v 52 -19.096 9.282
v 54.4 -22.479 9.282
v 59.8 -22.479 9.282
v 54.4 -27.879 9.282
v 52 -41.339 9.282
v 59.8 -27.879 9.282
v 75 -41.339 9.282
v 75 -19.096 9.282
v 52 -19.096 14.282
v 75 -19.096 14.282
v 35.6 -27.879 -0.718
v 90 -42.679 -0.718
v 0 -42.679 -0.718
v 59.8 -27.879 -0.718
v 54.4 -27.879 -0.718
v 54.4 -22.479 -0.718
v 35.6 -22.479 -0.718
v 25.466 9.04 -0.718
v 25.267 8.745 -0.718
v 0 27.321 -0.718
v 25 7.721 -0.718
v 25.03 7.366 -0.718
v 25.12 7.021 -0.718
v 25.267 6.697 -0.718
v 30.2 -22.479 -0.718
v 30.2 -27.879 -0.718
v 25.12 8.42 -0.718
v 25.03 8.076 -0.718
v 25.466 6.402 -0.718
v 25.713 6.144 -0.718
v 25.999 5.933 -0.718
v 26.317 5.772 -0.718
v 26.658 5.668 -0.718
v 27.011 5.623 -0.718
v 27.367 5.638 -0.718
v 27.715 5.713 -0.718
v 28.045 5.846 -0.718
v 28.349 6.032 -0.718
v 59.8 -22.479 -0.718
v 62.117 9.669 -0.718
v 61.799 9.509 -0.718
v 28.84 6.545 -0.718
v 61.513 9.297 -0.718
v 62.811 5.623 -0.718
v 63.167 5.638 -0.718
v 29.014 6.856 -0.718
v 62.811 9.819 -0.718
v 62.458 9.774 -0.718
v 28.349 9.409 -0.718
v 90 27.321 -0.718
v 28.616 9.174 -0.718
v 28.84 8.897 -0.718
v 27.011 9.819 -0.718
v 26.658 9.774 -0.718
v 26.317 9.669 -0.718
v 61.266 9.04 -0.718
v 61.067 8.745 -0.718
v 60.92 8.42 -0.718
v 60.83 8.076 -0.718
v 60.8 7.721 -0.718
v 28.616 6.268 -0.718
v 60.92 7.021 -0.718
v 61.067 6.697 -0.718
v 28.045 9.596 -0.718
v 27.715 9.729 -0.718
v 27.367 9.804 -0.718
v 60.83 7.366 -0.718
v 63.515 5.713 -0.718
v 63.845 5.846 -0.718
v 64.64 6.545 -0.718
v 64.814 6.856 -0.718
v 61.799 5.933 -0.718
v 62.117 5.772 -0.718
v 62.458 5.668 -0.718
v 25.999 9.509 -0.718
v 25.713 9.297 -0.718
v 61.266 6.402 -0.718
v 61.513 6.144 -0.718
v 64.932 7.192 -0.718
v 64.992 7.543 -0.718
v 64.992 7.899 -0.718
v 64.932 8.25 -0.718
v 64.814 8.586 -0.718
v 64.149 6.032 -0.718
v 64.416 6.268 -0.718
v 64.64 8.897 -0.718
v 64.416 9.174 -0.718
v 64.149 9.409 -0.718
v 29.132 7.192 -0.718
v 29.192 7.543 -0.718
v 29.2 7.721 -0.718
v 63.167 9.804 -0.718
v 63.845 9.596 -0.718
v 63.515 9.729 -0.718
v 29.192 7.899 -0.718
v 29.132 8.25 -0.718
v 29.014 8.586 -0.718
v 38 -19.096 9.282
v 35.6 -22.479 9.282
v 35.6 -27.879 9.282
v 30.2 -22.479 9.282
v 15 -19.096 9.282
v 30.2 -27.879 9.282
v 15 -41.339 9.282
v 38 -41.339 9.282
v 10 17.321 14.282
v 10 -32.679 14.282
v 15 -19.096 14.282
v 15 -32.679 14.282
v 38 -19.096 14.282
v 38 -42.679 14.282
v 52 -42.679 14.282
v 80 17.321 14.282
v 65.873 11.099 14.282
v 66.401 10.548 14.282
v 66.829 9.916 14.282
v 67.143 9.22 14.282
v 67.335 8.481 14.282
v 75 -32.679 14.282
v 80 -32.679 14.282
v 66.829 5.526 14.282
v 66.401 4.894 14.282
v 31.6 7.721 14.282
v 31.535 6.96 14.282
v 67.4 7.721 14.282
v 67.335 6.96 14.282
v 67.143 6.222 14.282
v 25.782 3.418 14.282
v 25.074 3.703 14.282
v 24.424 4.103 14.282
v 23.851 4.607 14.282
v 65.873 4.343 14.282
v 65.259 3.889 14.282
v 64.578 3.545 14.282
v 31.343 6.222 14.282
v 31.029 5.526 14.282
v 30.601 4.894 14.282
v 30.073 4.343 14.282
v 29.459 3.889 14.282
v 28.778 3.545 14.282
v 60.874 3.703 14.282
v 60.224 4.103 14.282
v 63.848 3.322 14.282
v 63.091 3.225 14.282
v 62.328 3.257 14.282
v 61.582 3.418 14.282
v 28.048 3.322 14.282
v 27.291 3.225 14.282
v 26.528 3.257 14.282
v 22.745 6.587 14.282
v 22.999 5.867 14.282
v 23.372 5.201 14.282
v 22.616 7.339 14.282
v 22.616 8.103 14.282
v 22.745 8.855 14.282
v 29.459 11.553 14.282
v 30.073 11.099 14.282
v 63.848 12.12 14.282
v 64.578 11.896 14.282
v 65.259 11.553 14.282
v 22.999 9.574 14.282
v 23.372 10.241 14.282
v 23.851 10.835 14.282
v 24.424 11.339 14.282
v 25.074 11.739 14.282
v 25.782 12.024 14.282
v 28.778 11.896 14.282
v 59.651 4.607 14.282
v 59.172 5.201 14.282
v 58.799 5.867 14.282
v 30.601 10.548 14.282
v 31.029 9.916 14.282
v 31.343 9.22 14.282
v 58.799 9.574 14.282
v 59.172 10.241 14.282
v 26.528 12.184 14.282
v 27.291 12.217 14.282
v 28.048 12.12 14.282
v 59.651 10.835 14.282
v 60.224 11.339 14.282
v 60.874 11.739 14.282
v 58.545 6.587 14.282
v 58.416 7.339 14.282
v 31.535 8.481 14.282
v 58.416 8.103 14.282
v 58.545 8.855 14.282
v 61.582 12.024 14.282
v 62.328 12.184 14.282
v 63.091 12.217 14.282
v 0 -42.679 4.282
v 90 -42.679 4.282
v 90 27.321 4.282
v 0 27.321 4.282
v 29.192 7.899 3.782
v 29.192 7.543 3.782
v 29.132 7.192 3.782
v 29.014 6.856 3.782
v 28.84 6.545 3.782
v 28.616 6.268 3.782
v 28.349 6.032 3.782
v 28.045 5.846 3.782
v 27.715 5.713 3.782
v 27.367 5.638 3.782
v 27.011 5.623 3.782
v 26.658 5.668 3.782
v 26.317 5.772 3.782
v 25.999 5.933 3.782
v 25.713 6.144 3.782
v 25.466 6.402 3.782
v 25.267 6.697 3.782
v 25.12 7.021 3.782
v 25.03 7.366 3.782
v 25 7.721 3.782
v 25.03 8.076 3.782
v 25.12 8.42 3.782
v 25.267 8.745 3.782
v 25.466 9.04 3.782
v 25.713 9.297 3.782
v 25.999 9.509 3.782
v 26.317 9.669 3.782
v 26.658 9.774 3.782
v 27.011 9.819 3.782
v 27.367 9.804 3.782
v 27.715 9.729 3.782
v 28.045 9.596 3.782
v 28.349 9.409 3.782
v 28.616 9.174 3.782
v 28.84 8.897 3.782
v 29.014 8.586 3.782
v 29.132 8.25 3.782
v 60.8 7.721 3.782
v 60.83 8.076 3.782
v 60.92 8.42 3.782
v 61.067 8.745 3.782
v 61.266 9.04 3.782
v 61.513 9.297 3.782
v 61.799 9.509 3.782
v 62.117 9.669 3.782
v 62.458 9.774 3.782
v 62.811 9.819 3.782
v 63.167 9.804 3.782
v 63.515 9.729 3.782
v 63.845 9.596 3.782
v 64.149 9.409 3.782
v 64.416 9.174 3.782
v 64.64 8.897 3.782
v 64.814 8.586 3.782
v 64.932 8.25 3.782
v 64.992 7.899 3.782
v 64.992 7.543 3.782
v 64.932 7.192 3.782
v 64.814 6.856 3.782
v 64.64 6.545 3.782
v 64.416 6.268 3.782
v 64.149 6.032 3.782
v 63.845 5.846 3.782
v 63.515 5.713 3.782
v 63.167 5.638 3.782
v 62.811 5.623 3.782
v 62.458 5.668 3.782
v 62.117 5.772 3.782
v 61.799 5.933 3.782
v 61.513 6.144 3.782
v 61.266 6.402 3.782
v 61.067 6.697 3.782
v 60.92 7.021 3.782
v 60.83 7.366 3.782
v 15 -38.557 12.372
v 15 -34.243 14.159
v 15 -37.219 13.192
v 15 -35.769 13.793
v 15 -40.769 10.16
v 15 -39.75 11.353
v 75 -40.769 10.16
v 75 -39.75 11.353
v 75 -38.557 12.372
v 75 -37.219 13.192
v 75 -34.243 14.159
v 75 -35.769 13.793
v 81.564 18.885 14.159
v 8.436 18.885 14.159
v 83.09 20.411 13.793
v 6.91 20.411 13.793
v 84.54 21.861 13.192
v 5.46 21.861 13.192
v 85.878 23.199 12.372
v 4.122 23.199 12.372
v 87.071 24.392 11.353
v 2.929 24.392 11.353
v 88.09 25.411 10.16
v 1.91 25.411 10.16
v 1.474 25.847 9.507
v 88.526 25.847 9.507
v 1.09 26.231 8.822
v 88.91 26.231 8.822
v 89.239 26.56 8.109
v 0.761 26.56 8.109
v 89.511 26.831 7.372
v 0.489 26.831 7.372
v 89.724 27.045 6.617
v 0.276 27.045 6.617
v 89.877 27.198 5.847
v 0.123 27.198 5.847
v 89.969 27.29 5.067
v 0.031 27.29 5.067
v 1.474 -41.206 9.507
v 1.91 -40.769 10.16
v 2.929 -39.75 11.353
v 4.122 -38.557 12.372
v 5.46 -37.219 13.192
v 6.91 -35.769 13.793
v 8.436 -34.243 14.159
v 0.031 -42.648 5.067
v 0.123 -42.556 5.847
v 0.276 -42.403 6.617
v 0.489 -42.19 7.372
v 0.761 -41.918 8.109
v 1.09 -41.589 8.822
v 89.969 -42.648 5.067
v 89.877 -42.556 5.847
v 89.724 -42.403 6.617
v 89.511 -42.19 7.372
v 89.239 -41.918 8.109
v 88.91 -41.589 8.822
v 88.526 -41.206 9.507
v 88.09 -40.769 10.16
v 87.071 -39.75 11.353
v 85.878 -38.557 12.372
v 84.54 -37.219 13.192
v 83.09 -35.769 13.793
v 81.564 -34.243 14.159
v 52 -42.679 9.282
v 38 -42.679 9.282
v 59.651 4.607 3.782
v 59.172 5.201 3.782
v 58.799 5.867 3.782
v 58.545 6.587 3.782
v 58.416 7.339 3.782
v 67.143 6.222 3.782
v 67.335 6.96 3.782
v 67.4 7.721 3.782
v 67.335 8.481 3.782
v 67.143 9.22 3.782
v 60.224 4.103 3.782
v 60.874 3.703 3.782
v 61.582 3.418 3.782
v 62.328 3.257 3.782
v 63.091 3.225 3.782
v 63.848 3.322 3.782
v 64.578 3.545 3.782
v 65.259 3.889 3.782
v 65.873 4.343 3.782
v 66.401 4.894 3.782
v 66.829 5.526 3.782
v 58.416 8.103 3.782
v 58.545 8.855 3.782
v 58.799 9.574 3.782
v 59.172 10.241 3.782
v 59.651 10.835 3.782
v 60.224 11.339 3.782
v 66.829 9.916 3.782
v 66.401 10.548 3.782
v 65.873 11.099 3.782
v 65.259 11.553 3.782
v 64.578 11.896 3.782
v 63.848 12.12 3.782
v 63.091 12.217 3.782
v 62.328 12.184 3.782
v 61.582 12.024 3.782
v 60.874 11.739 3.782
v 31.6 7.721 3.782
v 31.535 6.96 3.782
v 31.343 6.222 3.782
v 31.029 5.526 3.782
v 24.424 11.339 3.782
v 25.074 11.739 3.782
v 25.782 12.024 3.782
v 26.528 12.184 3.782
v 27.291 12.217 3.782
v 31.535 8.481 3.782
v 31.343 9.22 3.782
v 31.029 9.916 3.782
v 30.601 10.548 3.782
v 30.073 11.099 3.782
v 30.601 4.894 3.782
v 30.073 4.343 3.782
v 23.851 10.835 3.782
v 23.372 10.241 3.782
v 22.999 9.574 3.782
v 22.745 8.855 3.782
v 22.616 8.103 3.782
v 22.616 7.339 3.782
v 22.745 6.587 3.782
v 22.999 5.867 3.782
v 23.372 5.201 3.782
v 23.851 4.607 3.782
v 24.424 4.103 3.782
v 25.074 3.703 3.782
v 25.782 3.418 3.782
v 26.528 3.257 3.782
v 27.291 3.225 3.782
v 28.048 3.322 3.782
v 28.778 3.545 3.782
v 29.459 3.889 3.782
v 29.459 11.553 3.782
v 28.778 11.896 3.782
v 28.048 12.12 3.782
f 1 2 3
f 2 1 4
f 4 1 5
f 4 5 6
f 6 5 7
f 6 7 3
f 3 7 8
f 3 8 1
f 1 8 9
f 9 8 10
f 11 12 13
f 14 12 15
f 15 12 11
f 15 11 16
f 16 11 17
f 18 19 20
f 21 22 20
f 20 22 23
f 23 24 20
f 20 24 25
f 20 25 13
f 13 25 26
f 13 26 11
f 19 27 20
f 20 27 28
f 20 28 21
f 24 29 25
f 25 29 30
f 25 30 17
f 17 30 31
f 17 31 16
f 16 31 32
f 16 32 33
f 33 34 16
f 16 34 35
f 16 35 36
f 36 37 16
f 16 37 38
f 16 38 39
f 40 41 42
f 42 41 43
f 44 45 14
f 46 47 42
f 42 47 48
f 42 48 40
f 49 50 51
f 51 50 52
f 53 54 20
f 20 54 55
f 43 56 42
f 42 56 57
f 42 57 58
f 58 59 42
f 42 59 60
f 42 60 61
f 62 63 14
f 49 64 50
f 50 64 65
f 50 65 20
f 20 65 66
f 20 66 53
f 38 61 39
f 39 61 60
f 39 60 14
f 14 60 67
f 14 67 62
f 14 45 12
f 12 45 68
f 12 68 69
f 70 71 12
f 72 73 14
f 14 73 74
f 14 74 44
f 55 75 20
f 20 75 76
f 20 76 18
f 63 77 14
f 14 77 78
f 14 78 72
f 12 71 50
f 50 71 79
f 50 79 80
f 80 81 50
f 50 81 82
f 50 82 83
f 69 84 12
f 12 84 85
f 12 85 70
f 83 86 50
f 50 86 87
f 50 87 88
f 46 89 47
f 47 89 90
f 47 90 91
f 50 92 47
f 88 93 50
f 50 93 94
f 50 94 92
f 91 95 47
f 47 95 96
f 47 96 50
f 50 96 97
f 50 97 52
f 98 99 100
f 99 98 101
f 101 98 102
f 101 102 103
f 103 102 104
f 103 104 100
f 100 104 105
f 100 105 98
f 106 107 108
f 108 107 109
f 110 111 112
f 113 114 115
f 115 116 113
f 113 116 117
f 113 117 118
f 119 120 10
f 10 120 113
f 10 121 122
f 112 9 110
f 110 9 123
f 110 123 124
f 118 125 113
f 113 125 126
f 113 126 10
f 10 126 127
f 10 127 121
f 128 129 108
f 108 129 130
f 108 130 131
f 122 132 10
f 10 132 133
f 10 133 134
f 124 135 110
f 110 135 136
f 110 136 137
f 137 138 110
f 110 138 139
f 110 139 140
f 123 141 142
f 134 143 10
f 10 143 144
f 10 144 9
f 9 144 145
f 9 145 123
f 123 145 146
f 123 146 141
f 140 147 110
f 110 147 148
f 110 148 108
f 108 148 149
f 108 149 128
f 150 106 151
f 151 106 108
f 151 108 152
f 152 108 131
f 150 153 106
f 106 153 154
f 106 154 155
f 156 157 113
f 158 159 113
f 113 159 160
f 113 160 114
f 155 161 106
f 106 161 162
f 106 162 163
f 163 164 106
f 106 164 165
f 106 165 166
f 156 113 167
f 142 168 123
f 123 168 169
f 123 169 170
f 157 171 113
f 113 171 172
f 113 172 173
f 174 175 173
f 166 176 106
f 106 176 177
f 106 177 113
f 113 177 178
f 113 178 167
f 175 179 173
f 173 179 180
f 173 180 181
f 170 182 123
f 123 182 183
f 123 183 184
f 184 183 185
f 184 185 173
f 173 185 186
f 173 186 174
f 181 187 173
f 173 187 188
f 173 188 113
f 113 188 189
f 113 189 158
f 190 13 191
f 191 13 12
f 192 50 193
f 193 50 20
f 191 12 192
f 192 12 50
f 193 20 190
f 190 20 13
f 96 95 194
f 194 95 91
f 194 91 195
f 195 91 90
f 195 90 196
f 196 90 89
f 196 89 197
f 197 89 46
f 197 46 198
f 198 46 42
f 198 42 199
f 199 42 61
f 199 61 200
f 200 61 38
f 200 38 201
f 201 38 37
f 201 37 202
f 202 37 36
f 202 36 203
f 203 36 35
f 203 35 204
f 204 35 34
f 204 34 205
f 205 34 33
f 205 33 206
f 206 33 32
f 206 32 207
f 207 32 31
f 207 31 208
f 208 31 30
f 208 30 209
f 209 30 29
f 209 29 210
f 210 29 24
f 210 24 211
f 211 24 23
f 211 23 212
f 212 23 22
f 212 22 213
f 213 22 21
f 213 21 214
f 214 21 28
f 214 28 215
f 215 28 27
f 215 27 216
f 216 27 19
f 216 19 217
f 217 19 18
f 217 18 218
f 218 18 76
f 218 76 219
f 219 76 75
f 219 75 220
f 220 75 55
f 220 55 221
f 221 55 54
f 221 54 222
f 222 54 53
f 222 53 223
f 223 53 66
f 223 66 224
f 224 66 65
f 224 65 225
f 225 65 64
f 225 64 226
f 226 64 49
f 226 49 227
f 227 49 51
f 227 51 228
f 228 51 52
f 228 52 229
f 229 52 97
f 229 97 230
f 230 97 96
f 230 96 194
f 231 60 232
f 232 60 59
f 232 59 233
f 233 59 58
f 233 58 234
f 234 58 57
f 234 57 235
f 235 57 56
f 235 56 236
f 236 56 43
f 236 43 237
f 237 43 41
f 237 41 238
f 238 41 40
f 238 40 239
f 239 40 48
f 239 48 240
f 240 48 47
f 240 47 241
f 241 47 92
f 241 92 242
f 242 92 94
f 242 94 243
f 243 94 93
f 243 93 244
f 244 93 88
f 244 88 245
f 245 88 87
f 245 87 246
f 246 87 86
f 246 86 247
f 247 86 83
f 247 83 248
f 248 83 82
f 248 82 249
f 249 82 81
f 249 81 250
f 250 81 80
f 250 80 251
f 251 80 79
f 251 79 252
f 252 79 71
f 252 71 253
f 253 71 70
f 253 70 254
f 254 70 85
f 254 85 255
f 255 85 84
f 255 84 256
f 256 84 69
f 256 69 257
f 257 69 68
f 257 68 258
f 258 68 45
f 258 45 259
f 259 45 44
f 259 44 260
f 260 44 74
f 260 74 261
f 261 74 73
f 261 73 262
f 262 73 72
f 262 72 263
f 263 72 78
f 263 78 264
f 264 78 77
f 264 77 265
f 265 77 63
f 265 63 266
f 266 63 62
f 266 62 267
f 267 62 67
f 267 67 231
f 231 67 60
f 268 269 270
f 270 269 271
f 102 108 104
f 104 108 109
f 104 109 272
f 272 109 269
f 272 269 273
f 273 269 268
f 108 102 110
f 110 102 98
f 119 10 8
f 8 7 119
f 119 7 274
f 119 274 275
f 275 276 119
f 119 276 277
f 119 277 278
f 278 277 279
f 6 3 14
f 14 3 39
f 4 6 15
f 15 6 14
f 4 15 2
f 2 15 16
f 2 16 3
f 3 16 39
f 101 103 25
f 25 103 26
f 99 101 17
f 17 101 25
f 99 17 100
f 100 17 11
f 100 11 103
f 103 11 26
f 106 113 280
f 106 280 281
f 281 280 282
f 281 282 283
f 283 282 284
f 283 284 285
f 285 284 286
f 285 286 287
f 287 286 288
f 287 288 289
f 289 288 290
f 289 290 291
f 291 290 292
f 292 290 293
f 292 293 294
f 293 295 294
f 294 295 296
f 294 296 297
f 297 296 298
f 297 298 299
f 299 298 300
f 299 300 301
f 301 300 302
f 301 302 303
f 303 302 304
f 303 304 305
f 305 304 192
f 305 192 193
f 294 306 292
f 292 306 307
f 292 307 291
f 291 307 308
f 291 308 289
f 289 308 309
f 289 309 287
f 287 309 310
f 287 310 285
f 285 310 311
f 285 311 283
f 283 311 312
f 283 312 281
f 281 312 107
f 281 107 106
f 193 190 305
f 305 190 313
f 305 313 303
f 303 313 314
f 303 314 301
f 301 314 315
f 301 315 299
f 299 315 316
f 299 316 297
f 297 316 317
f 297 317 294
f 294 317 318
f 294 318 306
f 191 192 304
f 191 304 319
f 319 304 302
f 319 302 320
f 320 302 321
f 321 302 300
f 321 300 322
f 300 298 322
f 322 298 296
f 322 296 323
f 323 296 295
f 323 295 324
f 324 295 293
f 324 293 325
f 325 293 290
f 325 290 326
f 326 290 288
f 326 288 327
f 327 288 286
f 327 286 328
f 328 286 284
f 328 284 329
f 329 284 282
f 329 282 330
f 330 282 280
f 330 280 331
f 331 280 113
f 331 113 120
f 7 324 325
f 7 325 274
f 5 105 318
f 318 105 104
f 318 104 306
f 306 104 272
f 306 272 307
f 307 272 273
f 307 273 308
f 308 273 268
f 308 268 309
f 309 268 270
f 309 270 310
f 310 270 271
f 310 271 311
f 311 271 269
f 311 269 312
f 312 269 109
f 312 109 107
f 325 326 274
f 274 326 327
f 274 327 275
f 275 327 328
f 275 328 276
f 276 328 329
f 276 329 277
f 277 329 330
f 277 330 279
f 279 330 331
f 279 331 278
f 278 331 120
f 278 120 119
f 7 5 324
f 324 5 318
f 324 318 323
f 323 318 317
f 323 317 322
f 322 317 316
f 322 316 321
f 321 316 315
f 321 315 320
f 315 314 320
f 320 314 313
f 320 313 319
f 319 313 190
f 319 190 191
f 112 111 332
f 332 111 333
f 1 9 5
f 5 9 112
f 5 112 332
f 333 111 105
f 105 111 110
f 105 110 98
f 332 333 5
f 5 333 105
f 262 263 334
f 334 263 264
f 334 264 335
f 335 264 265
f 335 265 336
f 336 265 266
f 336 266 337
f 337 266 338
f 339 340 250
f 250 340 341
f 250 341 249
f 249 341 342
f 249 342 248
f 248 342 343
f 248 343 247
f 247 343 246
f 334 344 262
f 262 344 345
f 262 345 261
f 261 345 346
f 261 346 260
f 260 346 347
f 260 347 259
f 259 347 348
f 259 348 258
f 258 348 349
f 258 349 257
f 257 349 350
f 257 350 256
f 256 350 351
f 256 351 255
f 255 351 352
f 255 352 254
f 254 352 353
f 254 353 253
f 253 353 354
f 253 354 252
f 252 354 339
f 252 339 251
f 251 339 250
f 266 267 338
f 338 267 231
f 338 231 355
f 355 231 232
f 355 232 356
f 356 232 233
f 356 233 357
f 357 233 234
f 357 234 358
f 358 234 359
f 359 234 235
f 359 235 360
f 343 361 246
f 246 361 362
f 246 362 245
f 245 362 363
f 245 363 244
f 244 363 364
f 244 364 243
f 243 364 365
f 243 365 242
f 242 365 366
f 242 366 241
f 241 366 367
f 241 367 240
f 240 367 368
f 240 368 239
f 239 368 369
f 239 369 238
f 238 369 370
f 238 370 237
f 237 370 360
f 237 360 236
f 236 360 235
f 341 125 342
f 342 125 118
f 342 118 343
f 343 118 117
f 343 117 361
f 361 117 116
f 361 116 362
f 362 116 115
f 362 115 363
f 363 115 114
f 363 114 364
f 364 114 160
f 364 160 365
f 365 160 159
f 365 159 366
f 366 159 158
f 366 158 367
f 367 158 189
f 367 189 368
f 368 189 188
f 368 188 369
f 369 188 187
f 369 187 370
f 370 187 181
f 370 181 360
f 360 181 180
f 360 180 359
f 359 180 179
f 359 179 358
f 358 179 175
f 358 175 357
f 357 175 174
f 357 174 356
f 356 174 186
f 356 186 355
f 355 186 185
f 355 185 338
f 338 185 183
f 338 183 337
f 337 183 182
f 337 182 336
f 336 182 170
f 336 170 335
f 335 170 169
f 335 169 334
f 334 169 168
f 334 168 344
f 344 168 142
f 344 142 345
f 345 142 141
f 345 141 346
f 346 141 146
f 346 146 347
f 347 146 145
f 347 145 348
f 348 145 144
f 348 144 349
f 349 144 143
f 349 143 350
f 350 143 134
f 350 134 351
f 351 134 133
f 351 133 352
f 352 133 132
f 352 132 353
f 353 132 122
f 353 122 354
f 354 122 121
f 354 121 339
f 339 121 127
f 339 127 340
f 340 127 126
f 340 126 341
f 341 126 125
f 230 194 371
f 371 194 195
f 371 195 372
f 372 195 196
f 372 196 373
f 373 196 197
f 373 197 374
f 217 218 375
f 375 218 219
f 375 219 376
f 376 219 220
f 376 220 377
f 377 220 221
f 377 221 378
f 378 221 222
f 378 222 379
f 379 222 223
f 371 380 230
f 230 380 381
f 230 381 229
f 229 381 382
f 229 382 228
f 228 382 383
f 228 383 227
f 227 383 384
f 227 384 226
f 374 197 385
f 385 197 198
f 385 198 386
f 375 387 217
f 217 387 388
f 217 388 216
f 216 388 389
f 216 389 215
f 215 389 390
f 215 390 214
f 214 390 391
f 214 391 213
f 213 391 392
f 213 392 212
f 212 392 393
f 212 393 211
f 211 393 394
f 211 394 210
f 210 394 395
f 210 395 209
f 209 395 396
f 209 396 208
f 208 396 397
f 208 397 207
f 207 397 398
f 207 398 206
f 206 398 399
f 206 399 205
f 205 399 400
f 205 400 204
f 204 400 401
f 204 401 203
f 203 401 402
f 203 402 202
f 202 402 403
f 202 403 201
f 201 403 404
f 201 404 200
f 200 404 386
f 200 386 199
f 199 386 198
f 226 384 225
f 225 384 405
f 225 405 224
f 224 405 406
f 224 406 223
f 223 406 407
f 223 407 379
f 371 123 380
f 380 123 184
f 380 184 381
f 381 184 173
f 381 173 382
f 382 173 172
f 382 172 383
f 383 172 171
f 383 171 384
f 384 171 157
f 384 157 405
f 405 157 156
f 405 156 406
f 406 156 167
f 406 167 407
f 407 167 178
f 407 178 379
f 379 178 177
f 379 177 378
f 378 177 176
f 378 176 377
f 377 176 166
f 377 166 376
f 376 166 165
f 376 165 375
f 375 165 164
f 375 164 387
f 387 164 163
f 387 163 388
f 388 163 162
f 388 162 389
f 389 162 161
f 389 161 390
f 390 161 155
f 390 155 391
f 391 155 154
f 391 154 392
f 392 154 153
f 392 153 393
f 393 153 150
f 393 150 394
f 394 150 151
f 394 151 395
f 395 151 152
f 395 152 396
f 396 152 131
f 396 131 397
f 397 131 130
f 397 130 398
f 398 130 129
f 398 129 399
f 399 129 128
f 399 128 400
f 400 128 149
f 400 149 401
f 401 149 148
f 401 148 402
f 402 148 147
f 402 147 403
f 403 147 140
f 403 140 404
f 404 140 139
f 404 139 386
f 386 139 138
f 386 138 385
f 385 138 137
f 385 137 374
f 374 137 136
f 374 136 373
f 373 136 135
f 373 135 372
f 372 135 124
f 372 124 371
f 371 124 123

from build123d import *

# Parameters (mm, degrees)
BOSS_EXTRUDE3_DEPTH       = 90
SKETCH3_R                 = 2.1
CUT_EXTRUDE1_DEPTH        = 101.729866263
SKETCH7_W                 = 60
SKETCH7_H                 = 23.583098141
CUT_EXTRUDE3_DEPTH        = 5
SKETCH8_W                 = 5.4
SKETCH8_H                 = 5.4
CUT_EXTRUDE4_DEPTH        = 10.2
FILLET3_R                 = 10
SKETCH9_W                 = 14
SKETCH9_H                 = 23.583098141
BOSS_EXTRUDE4_DEPTH       = 5
ADVANCEDHOLE2_START       = 3.782223439
ADVANCEDHOLE2_OUTLINE_R   = 4.5
ADVANCEDHOLE2_OUTLINE_R_2 = 2.1
ADVANCEDHOLE2_DEPTH       = 10.5


# Read off the part's stored shape, not the designer's step: AdvancedHole2
with BuildPart() as part:
    # Sketch1 → Boss-Extrude3 (new body)
    with BuildSketch(Plane.YZ):
        Polygon((-42.679104458, 14.282223439), (-12.679104458, 14.282223439), (27.320895542, 14.282223439), (27.320895542, -0.717776561), (-42.679104458, -0.717776561), (-42.679104458, 2.342667118), align=None)
    extrude(amount=BOSS_EXTRUDE3_DEPTH)

    # Sketch3 → Cut-Extrude1 (cut, through all)
    with BuildSketch(Plane(origin=(0, 0, -0.717776561), x_dir=(1, 0, 0), z_dir=(0, 0, -1))):
        with Locations(Location((57.1, 25.179104458, 0), (0, 0, 180))):
            Circle(SKETCH3_R)
        with Locations((32.9, 25.179104458)):
            Circle(SKETCH3_R)
        with Locations(Location((62.9, -7.720895542, 0), (0, 0, 180))):
            Circle(SKETCH3_R)
        with Locations((27.1, -7.720895542)):
            Circle(SKETCH3_R)
    extrude(amount=-CUT_EXTRUDE1_DEPTH, mode=Mode.SUBTRACT)

    # Sketch7 → Cut-Extrude3 (cut)
    with BuildSketch(Plane.XY.offset(14.282223439)):
        with Locations((45, -30.887555388)):
            Rectangle(SKETCH7_W, SKETCH7_H)
    extrude(amount=-CUT_EXTRUDE3_DEPTH, mode=Mode.SUBTRACT)

    # Sketch8 → Cut-Extrude4 (cut)
    with BuildSketch(Plane.XY.offset(9.282223439)):
        with Locations((32.9, -25.179104458)):
            Rectangle(SKETCH8_W, SKETCH8_H)
        with Locations((57.1, -25.179104458)):
            Rectangle(SKETCH8_W, SKETCH8_H)
    extrude(amount=-CUT_EXTRUDE4_DEPTH, mode=Mode.SUBTRACT)

    # Fillet3
    # the kernel refuses this fillet: 10 mm, written as the material it takes off along each edge
    with BuildSketch(Plane(origin=(-60, 27.320895542, 14.282223439), x_dir=(0, -1, 0), z_dir=(1, 0, 0))) as fillet3_piece_1:
        with BuildLine():
            CenterArc((FILLET3_R, FILLET3_R), FILLET3_R, 180, 90)
            Line((0, FILLET3_R), (-FILLET3_R * 0.02, FILLET3_R))
            Line((-FILLET3_R * 0.02, FILLET3_R), (-FILLET3_R * 0.02, -FILLET3_R * 0.02))
            Line((-FILLET3_R * 0.02, -FILLET3_R * 0.02), (FILLET3_R, -FILLET3_R * 0.02))
            Line((FILLET3_R, -FILLET3_R * 0.02), (FILLET3_R, 0))
        make_face()
    extrude(amount=210, mode=Mode.SUBTRACT)
    with BuildSketch(Plane(origin=(15, -42.679104458, 14.282223439), x_dir=(0, 1, 0), z_dir=(1, 0, 0)), Plane(origin=(-60, -42.679104458, 14.282223439), x_dir=(0, 1, 0), z_dir=(1, 0, 0))) as fillet3_piece_2:
        with BuildLine():
            CenterArc((FILLET3_R, -FILLET3_R), FILLET3_R, 90, 90)
            Line((0, -FILLET3_R), (-FILLET3_R * 0.0200000000001, -FILLET3_R))
            Line((-FILLET3_R * 0.0200000000001, -FILLET3_R), (-FILLET3_R * 0.02, FILLET3_R * 0.02))
            Line((-FILLET3_R * 0.02, FILLET3_R * 0.02), (FILLET3_R, FILLET3_R * 0.02))
            Line((FILLET3_R, FILLET3_R * 0.02), (FILLET3_R, 0))
        make_face()
    extrude(amount=135, mode=Mode.SUBTRACT)
    with BuildSketch(Plane(origin=(90, -102.679104458, 14.282223439), x_dir=(-1, 0, 0), z_dir=(0, 1, 0)), Plane(origin=(0, 87.320895542, 14.282223439), x_dir=(1, 0, 0), z_dir=(0, -1, 0))) as fillet3_piece_3:
        with BuildLine():
            CenterArc((FILLET3_R, -FILLET3_R), FILLET3_R, 90, 90)
            Line((0, -FILLET3_R), (-FILLET3_R * 0.02, -FILLET3_R))
            Line((-FILLET3_R * 0.02, -FILLET3_R), (-FILLET3_R * 0.02, FILLET3_R * 0.02))
            Line((-FILLET3_R * 0.02, FILLET3_R * 0.02), (FILLET3_R, FILLET3_R * 0.02))
            Line((FILLET3_R, FILLET3_R * 0.02), (FILLET3_R, 0))
        make_face()
    extrude(amount=190, mode=Mode.SUBTRACT)

    # Sketch9 → Boss-Extrude4 (add)
    with BuildSketch(Plane.XY.offset(9.282223439)):
        with Locations((45, -30.887555388)):
            Rectangle(SKETCH9_W, SKETCH9_H)
    extrude(amount=BOSS_EXTRUDE4_DEPTH)

    # AdvancedHole2 outline → AdvancedHole2 (cut)
    # profile 1 of 2: a face of its own
    with BuildSketch(Plane.XY.offset(ADVANCEDHOLE2_START)):
        with Locations((62.9, 7.720895542)):
            Circle(ADVANCEDHOLE2_OUTLINE_R)
        with Locations((62.9, 7.720895542)):
            Circle(ADVANCEDHOLE2_OUTLINE_R_2, mode=Mode.SUBTRACT)
    # profile 2 of 2: a face of its own
    with BuildSketch(Plane.XY.offset(ADVANCEDHOLE2_START)):
        with Locations((27.1, 7.720895542)):
            Circle(ADVANCEDHOLE2_OUTLINE_R)
        with Locations((27.1, 7.720895542)):
            Circle(ADVANCEDHOLE2_OUTLINE_R_2, mode=Mode.SUBTRACT)
    extrude(amount=ADVANCEDHOLE2_DEPTH, mode=Mode.SUBTRACT)


solid = part.part
